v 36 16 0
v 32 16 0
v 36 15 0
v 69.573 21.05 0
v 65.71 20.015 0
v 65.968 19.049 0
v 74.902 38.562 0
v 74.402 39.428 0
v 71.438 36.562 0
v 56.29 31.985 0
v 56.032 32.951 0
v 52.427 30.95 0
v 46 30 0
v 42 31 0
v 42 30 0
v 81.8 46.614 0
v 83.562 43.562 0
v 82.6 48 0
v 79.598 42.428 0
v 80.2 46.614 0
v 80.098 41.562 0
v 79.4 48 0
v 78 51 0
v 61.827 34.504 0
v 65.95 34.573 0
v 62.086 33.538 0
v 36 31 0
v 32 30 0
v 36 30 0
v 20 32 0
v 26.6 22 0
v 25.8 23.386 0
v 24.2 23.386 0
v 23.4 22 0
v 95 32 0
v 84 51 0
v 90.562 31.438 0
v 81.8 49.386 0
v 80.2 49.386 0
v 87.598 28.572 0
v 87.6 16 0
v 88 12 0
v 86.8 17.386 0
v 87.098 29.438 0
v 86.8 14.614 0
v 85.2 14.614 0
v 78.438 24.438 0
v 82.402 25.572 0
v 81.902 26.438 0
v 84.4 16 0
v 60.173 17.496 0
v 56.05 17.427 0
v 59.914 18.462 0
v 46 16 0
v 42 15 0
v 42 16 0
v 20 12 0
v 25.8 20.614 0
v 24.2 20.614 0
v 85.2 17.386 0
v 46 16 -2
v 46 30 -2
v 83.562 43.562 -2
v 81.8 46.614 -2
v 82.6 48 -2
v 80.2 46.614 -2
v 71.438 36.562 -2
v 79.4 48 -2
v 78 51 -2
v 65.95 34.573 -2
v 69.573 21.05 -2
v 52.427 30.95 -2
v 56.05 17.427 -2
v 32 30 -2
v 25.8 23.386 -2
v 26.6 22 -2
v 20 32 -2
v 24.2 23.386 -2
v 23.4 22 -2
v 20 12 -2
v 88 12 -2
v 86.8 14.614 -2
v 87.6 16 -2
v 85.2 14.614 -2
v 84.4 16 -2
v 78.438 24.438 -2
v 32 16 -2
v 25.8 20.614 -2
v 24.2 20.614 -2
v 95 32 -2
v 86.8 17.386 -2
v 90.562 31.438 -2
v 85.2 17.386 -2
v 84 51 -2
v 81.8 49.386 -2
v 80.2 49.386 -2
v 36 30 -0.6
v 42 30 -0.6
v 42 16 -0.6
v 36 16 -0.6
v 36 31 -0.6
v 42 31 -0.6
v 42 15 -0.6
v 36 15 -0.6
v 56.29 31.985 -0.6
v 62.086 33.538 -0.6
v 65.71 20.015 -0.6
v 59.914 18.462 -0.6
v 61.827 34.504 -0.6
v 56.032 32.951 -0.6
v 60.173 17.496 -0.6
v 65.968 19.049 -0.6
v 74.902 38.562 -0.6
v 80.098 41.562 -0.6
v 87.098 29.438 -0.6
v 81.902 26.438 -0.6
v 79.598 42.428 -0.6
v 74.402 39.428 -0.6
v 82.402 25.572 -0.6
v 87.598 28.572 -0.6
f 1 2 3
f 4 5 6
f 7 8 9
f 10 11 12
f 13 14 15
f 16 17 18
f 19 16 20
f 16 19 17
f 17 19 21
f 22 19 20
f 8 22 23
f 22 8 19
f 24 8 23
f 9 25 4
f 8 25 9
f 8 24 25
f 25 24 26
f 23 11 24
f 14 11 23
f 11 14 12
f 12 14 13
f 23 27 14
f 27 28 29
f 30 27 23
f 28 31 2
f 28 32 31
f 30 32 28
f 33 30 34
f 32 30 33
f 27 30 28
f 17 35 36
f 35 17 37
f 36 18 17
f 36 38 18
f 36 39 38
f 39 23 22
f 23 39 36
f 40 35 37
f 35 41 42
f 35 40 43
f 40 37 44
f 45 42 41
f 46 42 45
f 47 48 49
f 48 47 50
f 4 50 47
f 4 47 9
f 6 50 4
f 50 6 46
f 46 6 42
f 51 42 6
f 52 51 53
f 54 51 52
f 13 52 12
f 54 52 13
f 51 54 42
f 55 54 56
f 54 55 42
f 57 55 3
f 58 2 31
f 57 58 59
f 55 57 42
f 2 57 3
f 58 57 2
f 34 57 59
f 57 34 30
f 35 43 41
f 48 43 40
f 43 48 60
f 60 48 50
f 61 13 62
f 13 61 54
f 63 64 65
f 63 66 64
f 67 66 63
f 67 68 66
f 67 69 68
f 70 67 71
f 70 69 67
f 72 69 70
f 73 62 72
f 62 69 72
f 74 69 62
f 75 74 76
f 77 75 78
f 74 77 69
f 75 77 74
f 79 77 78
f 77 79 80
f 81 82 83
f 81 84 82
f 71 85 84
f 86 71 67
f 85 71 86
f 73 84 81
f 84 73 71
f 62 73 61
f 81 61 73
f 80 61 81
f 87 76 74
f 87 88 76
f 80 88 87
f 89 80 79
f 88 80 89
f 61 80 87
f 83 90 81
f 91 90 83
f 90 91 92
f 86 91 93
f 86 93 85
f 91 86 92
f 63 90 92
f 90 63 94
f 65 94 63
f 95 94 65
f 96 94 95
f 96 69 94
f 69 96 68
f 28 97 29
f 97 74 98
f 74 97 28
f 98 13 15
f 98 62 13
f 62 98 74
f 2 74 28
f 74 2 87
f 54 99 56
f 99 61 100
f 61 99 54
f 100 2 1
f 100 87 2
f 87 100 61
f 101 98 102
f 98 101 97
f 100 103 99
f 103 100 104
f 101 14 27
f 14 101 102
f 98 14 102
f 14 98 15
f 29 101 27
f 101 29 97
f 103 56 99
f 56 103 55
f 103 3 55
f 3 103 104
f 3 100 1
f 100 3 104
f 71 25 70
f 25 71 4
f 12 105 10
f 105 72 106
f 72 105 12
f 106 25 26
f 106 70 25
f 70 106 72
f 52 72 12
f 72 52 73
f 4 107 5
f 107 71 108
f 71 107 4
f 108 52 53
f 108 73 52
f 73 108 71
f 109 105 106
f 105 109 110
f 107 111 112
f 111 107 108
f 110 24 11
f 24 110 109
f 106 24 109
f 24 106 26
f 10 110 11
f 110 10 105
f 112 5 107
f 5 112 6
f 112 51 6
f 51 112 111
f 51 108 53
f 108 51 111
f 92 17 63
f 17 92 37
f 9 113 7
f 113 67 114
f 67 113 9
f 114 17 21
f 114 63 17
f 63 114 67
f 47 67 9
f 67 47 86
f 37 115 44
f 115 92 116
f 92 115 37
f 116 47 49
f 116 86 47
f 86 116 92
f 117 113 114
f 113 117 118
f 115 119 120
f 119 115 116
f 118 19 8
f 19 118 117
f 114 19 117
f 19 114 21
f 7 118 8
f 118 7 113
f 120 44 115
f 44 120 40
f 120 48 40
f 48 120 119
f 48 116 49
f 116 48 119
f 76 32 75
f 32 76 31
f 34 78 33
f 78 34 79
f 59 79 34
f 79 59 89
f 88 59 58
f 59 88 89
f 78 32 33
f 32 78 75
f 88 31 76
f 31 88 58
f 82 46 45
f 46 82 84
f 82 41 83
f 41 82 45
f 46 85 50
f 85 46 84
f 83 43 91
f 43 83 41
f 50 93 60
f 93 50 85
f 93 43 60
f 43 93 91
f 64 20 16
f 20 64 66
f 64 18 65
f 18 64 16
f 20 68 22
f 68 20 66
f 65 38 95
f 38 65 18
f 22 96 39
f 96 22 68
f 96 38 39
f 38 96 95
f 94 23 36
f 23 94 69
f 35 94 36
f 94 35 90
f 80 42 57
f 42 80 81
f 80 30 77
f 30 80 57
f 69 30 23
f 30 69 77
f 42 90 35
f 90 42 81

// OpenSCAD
// file: common.scad
module keyswitch_hole(x=0, y=0, a=0) {
    translate([x, y, 0]) {
        rotate([0, 0, 90+a]) {
            linear_extrude(height = 2) {
            square([14, 14], center = true);
            //translate([-8, 3, 0]) square([1, 3]);
            //translate([-8, -6, 0]) square([1, 3]);
            //translate([7, 3, 0]) square([1, 3]);
            //translate([7, -6, 0]) square([1, 3]);
            }
            linear_extrude(height = 0.6) {
                translate([-3, 7]) square([6, 1]);
            translate([-3, -8]) square([6, 1]);
            }
        }
    }
}

keyswitch_hole();

module joint_male_face() {
    translate([-1, 0])
    square([2,4]);
    translate([-3, 2])
    square([6,2]);
}

module joint_male(pos=[0,0]) {
    translate(pos){
      rotate([0,0,180]){
        linear_extrude(height=10)
        joint_male_face();
        
        translate([0,2,10])
        rotate([-90,0,0])
        linear_extrude(height=2)
        circle(3, $fn=12);
        
        translate([0,0,10])
        rotate([-90,0,0])
        linear_extrude(height=2)
        circle(1, $fn=12);
      }
    }
}

module joint_female(pos=[0,0]) {
    delta = 0.6;
    translate(pos){
      rotate([0,0,180]){
        linear_extrude(height=10)
        offset(delta=delta)
        joint_male_face();
        
        translate([0,1.6,10])
        rotate([-90,0,0])
        linear_extrude(height=2.8)
        offset(delta=delta)
        circle(3, $fn=12);

        translate([0,-0.4,10])
        rotate([-90,0,0])
        linear_extrude(height=2.8)
        offset(delta=delta)
        circle(1, $fn=12);
      }
    }
}


joint_male([20, 0]);
joint_female([30, 0]);
// file: thumb.scad
use <common.scad>;

thumb_plate_points = [
                [20,-22],
                [20, -2],
                [88, -2],
                [95,-22],
                [84,-41],
                [78,-41],
                ];

thumb_plate_sc_points = [
                [20+5, -12],
                [88-2, -2-4],
                [84-3, -41+3],
                ];

module plate_nohole() {
    linear_extrude(height=2)
    polygon(points=thumb_plate_points);
}

module keyswitch_col(x=0,y=0,c=3,a=0) {
    translate([x,y])
    rotate([0,0,a])
    for (i = [0:c-1]) {
        keyswitch_hole(0, 19*i);
    }
}

module plate_holes() {
    keyswitch_hole(39, -13, 90);
    keyswitch_hole(61, -16, 90-15);
    keyswitch_hole(81, -24, 90-30);

    for(p=thumb_plate_sc_points){
        linear_extrude(height=5)
            translate(p)
            circle(1.6);
    }
}


module thumb_plate() {
    difference() {
        plate_nohole();
        plate_holes();
    }
}


tilt_angle = [12,20,0];
tilt_angle_r = tilt_angle * -1;
height = 45;

module thumb_case_outer_face() {
    projection()
        translate([0,0,height])
        rotate(tilt_angle)
        linear_extrude(height=2)
        offset(2)
        polygon(points=thumb_plate_points);
}

module thumb_case_inner_face() {
    projection()
        translate([0,0,height])
        rotate(tilt_angle)
        linear_extrude(height=2)
        offset(-2)
        polygon(points=thumb_plate_points);
}

module thumb_case_bottom_face() {
    difference(){
        thumb_case_outer_face();
        thumb_case_inner_face();
    }
    projection()
    translate([0,0,height])
    rotate(tilt_angle)
    for(p=thumb_plate_sc_points){
        linear_extrude(height=1)
        translate([-2,1])
        translate(p)
        circle(4.2);
    }
}

module case() {
    difference() {
        linear_extrude(height=50)
            thumb_case_bottom_face();
        translate([0,0,height])
            rotate(tilt_angle){
            linear_extrude(height=50)
                square(200, center=true);
            // screw hole
            translate([0,0,-9])
                linear_extrude(height=9)
                for(p=thumb_plate_sc_points){
                    translate(p)
                        circle(1.6);
                }
            // plate hole
            translate([0,0,-2])
            linear_extrude(height=2)
            offset(0.2)
            polygon(points=thumb_plate_points);
        }
    }
}

module thumb_case_hole() {
    // cable hole
    translate([55,0,0])
    rotate([90,0,0])
    linear_extrude(height=4){
        translate([0, 15])
        circle(6);
        translate([-6,15])
        square([12, 30]);
    }
    for (x = [27,67]) {
        joint_female([x, 0]);
    }
}

module thumb_case() {
    difference() {
        case();
        thumb_case_hole();
    }
}

thumb_case();

translate([0, 60])
thumb_plate();
// main file
use <thumb.scad>;

translate([0,10])
rotate([180,0,0])
thumb_plate();
